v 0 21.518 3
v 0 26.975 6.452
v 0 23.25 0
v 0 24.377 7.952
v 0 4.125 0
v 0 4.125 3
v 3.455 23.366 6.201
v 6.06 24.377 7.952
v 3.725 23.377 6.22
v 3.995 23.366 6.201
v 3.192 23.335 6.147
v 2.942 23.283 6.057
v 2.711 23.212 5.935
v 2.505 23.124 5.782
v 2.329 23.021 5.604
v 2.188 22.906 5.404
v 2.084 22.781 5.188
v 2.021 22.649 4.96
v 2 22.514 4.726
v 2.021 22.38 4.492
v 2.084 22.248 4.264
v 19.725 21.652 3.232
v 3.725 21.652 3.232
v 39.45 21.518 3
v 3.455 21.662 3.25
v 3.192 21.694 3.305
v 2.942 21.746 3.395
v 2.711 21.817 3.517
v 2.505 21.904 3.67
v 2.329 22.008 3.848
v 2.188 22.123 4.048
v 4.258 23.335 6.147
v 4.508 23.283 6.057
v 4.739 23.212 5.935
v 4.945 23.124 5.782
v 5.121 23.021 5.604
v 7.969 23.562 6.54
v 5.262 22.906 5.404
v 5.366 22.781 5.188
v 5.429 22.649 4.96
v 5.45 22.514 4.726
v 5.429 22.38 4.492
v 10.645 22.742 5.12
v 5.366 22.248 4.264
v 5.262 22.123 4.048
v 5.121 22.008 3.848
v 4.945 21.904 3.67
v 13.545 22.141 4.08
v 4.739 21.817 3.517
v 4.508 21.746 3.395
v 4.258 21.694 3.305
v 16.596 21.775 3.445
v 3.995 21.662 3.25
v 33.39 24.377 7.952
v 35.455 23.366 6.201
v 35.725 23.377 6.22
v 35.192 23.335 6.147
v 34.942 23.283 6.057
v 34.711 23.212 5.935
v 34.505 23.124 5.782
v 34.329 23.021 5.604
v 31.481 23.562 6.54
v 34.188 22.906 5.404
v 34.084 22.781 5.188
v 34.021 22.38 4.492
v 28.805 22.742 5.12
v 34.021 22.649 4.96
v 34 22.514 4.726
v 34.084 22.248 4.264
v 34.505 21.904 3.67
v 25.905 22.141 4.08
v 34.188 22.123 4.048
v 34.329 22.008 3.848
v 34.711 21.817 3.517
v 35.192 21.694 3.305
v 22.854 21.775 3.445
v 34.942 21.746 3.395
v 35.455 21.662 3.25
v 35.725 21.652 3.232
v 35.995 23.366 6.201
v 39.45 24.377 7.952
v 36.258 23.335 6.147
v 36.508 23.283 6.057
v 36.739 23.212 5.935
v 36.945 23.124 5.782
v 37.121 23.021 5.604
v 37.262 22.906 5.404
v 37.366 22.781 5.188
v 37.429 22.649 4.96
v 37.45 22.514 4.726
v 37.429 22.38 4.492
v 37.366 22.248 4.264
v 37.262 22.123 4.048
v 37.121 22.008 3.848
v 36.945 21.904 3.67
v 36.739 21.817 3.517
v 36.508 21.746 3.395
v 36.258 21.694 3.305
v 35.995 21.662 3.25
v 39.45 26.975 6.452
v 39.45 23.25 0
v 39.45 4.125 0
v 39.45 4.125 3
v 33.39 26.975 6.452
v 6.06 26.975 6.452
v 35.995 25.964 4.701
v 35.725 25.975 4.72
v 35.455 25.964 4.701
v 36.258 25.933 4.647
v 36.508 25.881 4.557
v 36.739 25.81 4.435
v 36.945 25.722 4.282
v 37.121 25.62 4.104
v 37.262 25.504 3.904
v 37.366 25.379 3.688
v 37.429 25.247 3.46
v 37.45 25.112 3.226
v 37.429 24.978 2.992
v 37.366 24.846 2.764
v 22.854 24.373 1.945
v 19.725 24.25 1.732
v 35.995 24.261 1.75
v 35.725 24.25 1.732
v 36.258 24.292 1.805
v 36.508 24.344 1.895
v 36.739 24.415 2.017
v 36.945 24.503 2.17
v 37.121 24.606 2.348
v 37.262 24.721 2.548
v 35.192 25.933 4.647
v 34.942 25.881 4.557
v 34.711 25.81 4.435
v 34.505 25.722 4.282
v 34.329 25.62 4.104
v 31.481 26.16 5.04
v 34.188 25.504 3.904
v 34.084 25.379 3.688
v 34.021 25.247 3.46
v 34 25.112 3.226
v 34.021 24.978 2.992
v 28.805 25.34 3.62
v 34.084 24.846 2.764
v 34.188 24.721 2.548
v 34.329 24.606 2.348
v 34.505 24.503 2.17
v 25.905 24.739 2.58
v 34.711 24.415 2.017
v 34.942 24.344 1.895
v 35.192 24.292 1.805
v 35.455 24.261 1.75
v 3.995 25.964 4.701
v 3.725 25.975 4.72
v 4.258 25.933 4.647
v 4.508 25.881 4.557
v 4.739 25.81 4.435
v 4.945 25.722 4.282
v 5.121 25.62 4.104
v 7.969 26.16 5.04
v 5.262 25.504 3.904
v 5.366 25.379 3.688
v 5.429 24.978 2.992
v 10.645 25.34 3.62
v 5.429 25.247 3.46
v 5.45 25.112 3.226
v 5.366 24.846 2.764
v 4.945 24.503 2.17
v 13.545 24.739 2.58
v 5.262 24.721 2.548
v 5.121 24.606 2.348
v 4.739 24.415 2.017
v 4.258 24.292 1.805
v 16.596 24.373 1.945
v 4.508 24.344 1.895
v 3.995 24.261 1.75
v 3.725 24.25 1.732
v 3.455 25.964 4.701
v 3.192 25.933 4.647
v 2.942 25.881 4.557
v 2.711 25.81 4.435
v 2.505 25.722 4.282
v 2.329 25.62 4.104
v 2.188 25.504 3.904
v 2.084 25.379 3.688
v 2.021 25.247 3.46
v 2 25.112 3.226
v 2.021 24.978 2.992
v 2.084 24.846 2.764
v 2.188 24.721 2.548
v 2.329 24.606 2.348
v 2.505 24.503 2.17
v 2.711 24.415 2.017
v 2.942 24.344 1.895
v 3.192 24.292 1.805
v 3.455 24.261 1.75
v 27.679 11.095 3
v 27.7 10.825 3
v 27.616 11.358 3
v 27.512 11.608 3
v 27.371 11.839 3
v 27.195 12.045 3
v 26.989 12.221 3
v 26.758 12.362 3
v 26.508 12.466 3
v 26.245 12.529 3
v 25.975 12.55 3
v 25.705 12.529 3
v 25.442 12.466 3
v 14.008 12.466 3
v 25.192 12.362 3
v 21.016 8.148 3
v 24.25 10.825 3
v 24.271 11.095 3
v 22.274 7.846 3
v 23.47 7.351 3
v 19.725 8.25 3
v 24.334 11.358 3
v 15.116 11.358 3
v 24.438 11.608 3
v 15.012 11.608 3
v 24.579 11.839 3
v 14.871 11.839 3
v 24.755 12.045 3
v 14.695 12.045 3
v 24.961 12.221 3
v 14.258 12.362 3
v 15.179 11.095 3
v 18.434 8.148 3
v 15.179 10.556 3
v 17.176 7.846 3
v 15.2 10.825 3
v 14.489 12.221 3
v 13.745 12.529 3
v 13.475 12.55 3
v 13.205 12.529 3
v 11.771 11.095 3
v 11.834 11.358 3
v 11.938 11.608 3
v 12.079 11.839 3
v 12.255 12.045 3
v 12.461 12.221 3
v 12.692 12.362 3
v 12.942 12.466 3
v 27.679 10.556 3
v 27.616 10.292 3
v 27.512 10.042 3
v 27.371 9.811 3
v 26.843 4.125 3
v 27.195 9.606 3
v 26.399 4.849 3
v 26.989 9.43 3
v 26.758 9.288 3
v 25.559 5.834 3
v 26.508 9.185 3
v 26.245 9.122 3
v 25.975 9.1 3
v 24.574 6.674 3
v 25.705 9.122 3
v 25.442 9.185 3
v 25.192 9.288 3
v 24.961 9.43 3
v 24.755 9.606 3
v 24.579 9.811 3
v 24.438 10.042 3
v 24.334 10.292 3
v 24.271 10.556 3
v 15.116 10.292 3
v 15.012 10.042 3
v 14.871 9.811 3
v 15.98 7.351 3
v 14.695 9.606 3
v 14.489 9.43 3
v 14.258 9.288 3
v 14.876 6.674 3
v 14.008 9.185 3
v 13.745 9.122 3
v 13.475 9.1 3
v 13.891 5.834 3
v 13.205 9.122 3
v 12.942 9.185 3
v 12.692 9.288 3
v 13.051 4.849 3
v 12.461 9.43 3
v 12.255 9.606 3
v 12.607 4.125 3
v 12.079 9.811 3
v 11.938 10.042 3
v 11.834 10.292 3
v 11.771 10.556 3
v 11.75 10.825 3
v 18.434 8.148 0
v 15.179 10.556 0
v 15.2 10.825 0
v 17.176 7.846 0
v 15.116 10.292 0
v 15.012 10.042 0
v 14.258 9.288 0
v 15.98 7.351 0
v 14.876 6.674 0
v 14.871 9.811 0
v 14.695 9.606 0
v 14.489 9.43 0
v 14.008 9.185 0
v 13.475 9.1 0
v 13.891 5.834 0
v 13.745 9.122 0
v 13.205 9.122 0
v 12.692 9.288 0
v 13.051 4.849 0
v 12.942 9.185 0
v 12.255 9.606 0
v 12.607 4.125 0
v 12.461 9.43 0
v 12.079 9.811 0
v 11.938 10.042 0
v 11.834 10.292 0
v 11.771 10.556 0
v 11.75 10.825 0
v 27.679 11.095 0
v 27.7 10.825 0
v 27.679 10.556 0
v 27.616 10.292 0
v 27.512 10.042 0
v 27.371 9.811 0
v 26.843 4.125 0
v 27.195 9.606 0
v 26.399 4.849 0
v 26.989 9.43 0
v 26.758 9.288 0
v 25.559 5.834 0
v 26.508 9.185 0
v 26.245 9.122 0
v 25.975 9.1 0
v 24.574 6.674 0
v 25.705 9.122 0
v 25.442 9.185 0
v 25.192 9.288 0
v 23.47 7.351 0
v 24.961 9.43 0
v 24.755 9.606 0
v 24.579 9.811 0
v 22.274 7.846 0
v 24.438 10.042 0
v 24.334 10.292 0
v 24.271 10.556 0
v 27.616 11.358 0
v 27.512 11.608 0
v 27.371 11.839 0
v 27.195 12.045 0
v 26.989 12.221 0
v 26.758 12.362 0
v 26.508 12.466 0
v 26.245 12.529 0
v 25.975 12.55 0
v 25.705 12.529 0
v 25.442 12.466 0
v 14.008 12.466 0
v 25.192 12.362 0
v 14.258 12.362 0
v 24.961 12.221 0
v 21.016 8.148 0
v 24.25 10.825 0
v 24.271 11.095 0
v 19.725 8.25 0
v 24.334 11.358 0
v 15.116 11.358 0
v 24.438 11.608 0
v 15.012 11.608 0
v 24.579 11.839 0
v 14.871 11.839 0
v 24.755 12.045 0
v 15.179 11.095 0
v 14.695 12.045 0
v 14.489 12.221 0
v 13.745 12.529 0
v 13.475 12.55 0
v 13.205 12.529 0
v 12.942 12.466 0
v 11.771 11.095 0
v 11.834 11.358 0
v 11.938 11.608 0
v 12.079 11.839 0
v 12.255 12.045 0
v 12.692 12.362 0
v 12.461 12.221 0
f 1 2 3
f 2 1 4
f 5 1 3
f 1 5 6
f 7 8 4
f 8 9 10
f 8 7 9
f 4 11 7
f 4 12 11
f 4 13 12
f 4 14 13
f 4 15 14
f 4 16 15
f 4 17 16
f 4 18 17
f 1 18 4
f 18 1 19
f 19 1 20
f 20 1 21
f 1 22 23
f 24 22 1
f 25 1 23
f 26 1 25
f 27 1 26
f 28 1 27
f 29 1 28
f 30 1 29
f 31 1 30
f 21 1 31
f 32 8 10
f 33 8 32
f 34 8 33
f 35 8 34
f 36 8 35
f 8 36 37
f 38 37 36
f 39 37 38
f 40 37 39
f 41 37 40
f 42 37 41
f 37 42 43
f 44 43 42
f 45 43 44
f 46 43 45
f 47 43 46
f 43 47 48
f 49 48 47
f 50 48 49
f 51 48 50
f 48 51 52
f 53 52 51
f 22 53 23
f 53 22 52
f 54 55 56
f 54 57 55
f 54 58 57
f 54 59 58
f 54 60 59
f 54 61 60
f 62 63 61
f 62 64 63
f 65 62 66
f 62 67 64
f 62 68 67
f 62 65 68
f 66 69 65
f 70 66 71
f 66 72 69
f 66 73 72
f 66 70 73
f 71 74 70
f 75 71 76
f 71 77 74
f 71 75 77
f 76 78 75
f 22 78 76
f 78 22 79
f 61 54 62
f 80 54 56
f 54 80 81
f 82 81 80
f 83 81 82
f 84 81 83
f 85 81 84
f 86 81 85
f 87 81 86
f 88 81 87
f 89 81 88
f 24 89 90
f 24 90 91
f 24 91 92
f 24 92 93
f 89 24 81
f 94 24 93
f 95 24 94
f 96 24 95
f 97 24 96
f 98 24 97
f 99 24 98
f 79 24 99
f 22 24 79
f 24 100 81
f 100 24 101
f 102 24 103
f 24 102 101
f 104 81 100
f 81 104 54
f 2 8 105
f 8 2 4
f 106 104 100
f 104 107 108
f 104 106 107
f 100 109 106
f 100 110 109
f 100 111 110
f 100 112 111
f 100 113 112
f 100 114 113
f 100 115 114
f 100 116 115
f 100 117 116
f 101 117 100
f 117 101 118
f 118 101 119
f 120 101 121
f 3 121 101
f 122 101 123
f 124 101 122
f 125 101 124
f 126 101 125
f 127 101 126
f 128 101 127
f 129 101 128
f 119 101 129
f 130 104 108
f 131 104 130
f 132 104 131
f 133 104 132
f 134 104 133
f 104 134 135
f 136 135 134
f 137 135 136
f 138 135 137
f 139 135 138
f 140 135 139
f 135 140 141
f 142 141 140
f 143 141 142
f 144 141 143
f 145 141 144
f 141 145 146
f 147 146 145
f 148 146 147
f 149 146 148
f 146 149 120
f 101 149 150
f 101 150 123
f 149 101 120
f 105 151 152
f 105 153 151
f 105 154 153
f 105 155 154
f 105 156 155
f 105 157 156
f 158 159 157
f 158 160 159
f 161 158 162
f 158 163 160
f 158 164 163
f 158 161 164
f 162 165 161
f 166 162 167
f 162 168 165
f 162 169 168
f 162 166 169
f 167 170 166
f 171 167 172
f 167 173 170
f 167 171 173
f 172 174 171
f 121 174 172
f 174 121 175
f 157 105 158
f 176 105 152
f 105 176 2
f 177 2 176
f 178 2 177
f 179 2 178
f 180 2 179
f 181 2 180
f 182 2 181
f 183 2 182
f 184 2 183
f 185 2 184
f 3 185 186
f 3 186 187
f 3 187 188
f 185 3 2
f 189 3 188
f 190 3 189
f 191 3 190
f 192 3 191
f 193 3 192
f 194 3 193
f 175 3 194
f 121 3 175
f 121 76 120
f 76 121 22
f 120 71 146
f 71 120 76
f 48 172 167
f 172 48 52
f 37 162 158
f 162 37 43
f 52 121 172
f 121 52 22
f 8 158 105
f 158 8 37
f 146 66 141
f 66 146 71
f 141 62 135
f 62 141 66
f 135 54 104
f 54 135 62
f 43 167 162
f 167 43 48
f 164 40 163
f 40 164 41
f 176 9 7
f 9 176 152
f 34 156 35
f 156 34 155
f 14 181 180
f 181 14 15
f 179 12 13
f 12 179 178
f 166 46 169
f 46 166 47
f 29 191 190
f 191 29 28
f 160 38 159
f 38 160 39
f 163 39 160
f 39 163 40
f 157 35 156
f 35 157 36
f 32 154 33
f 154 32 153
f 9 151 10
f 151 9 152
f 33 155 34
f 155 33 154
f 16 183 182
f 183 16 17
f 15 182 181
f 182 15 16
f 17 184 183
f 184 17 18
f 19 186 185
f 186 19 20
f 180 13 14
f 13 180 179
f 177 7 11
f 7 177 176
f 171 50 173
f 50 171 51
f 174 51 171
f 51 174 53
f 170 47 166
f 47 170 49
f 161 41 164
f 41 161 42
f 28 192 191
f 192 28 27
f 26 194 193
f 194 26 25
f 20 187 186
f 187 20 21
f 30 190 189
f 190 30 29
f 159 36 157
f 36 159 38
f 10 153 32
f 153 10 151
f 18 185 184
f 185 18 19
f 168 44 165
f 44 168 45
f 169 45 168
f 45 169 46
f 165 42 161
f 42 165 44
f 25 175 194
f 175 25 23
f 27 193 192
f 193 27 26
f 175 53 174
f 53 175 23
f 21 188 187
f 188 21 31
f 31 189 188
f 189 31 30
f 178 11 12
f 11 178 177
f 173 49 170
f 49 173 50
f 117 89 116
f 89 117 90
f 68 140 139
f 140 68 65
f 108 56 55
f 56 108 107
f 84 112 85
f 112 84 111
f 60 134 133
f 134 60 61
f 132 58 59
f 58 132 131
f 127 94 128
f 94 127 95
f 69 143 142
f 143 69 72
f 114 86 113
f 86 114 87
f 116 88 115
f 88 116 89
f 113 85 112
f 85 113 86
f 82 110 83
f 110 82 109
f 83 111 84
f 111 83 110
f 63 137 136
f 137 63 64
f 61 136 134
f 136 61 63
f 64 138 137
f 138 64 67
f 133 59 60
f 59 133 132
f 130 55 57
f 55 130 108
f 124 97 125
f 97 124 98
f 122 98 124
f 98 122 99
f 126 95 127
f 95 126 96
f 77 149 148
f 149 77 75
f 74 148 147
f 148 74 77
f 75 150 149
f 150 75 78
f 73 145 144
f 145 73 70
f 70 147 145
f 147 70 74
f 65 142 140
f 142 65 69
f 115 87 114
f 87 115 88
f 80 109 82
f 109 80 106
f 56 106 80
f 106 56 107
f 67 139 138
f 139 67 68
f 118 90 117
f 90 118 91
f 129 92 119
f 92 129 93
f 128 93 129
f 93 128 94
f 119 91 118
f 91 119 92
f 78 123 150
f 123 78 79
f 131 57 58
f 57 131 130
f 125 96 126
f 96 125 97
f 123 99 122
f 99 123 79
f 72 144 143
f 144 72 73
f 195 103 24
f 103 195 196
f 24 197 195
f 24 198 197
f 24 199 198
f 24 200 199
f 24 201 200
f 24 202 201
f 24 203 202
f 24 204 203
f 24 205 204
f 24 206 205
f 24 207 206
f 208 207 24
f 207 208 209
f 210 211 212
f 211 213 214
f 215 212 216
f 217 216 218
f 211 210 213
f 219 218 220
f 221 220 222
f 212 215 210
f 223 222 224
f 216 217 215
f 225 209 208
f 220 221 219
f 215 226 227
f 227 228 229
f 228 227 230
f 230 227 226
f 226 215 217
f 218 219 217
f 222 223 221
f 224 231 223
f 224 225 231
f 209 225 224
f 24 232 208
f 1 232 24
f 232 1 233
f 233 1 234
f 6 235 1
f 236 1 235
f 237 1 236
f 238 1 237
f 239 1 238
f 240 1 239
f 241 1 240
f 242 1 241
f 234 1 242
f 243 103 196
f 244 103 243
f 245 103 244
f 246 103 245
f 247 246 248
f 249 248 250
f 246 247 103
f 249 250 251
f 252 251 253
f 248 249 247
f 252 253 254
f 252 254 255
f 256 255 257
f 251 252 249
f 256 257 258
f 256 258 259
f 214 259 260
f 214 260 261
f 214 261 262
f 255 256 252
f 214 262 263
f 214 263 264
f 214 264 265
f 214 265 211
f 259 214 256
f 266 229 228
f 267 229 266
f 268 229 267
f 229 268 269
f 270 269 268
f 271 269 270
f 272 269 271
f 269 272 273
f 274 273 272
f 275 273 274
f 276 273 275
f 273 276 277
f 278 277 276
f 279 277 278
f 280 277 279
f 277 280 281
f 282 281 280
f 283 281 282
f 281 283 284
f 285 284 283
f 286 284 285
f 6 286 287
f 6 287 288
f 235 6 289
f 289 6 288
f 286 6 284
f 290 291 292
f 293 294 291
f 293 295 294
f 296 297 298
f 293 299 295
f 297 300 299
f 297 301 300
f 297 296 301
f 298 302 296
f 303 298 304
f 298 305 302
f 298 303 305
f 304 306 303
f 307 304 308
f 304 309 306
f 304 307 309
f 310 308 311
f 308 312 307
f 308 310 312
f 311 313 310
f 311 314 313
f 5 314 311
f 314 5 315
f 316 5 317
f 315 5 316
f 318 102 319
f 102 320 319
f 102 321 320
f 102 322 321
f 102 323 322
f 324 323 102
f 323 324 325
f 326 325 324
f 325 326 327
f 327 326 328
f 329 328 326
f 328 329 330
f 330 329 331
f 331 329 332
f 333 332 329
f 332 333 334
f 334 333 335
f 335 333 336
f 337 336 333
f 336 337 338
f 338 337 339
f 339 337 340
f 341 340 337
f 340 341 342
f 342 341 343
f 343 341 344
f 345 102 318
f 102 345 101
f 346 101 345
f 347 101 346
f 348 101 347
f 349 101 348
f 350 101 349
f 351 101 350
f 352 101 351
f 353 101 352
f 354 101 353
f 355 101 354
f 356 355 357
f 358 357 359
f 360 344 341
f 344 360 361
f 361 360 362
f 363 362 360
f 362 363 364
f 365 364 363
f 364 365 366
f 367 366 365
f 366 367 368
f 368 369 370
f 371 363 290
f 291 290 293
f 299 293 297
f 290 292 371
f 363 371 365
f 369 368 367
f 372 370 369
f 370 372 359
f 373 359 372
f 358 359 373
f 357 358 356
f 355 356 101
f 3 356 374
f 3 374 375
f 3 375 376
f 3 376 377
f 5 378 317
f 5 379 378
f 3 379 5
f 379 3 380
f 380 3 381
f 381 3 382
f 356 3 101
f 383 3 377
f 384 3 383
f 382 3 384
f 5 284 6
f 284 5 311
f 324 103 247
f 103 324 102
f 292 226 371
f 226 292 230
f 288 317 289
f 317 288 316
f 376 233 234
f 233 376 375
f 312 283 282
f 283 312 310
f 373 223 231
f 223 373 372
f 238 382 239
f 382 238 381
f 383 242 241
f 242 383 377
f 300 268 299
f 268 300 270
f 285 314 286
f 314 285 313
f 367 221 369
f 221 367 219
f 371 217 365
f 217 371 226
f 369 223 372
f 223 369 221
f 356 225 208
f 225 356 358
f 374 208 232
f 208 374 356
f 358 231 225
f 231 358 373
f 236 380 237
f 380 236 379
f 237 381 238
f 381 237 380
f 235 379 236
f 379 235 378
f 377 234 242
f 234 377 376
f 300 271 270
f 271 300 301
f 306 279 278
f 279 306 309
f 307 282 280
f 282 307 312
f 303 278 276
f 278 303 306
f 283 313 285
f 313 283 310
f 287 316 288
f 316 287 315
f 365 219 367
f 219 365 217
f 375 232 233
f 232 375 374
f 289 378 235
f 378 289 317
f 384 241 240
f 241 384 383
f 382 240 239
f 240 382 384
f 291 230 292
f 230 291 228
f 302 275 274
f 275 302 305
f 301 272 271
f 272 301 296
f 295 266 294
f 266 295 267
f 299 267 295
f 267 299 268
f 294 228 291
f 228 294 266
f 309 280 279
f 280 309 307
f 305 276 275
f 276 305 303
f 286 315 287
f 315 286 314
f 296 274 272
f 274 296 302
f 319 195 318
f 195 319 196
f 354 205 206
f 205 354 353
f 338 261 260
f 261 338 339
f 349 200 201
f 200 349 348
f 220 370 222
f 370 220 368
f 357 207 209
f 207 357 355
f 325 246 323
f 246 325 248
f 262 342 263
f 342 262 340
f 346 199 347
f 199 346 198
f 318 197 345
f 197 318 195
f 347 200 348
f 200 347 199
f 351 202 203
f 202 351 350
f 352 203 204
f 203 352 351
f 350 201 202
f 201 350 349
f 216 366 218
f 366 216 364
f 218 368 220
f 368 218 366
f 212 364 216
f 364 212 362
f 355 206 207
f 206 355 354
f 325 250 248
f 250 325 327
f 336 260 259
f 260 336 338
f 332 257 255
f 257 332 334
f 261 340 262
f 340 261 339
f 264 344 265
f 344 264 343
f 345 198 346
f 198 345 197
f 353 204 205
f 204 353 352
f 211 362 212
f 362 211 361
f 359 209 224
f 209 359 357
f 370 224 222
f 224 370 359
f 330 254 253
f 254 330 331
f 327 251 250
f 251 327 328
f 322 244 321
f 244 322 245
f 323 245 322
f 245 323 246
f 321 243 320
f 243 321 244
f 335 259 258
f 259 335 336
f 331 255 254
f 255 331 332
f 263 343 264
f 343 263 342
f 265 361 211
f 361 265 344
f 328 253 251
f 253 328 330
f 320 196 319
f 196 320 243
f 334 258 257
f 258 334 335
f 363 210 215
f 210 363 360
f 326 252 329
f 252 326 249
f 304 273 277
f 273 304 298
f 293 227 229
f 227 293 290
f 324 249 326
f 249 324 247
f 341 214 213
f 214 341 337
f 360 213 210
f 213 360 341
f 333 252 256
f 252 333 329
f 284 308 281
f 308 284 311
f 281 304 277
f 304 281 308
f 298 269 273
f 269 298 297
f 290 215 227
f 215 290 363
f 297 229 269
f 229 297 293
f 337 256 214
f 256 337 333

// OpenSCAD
// Increase this if your slicer or printer make holes too tight.
extra_radius = 0.1;

// Input parameters
mount_thickness = 3;                             // Overall thickness (mm)
mount_angle = 60;      //was 45                          // Angle to mount the fan at (degrees)
hole_radius = 12.5;                              // Radius at which the effector mount holes are made (mm)
effector_offset = 15;    //was 25                        // Length of the side that offsets the fan from the effector (mm)
fan_radius = 20;                                 // overall fan radius, e.g. 40mm fan = 20 (mm)
fan_hole_pitch = 32;                             // pitch of the fan mounting holes (mm)
hole_offset = 2;                                 // space between thru holes and edges (mm)
hotend_radius = 8 + 0.25;                        // Radius of the hotend + buffer (mm)

// Major diameter of metric 3mm thread.
m3_major = 2.85;
m3_radius = m3_major/2 + extra_radius;
m3_wide_radius = m3_major/2 + extra_radius + 0.2;

// Calculated parameters
bracket_length = 2*(hole_offset+m3_wide_radius);                // Length of the angled portion (mm)
bracket_width = fan_hole_pitch+2*(hole_offset+m3_wide_radius);  // Overall bracket width (mm)

$fn = 40;

module fan_mount(){
    //rotate(a=90, v=[0,1,0]) // print on its side for a strong angle joint
    difference() {
      union() {
        translate([0, hotend_radius+effector_offset, 0])
        rotate(a=mount_angle, v=[1,0,0])
          difference() {
            cube([bracket_width, bracket_length, mount_thickness]);
            translate([bracket_width/2, fan_radius+hole_offset, 0])
              cylinder(r=fan_radius, h=mount_thickness);
    
            // Fan mounting holes
            translate([m3_wide_radius+hole_offset, m3_wide_radius+hole_offset, 0])
              cylinder(r=m3_wide_radius, h=mount_thickness);
            translate([bracket_width-m3_wide_radius-hole_offset, m3_wide_radius+hole_offset, 0])
              cylinder(r=m3_wide_radius, h=mount_thickness);
        }
    
        // Effector mounting side
        translate([0, hotend_radius/2, 0])
            difference(){
                cube([bracket_width, effector_offset+hotend_radius/2, mount_thickness]);
                translate([0, effector_offset+hotend_radius/2-1.2, mount_thickness/2]) 
                    cube ([bracket_width, 2, mount_thickness]);
            }
      }
    
      // Thru holes
      for (hole_angle = [-30:60:30]) {
        translate([bracket_width/2, 0, 0])
          translate([sin(hole_angle)*hole_radius,cos(hole_angle)*hole_radius,0])
          cylinder(r=m3_wide_radius, h=mount_thickness);
      }
    
      // Thru hole for hotend
      translate([bracket_width/2, 0, 0])
          cylinder(r=hotend_radius, h=mount_thickness);
    };
}

fan_mount();
